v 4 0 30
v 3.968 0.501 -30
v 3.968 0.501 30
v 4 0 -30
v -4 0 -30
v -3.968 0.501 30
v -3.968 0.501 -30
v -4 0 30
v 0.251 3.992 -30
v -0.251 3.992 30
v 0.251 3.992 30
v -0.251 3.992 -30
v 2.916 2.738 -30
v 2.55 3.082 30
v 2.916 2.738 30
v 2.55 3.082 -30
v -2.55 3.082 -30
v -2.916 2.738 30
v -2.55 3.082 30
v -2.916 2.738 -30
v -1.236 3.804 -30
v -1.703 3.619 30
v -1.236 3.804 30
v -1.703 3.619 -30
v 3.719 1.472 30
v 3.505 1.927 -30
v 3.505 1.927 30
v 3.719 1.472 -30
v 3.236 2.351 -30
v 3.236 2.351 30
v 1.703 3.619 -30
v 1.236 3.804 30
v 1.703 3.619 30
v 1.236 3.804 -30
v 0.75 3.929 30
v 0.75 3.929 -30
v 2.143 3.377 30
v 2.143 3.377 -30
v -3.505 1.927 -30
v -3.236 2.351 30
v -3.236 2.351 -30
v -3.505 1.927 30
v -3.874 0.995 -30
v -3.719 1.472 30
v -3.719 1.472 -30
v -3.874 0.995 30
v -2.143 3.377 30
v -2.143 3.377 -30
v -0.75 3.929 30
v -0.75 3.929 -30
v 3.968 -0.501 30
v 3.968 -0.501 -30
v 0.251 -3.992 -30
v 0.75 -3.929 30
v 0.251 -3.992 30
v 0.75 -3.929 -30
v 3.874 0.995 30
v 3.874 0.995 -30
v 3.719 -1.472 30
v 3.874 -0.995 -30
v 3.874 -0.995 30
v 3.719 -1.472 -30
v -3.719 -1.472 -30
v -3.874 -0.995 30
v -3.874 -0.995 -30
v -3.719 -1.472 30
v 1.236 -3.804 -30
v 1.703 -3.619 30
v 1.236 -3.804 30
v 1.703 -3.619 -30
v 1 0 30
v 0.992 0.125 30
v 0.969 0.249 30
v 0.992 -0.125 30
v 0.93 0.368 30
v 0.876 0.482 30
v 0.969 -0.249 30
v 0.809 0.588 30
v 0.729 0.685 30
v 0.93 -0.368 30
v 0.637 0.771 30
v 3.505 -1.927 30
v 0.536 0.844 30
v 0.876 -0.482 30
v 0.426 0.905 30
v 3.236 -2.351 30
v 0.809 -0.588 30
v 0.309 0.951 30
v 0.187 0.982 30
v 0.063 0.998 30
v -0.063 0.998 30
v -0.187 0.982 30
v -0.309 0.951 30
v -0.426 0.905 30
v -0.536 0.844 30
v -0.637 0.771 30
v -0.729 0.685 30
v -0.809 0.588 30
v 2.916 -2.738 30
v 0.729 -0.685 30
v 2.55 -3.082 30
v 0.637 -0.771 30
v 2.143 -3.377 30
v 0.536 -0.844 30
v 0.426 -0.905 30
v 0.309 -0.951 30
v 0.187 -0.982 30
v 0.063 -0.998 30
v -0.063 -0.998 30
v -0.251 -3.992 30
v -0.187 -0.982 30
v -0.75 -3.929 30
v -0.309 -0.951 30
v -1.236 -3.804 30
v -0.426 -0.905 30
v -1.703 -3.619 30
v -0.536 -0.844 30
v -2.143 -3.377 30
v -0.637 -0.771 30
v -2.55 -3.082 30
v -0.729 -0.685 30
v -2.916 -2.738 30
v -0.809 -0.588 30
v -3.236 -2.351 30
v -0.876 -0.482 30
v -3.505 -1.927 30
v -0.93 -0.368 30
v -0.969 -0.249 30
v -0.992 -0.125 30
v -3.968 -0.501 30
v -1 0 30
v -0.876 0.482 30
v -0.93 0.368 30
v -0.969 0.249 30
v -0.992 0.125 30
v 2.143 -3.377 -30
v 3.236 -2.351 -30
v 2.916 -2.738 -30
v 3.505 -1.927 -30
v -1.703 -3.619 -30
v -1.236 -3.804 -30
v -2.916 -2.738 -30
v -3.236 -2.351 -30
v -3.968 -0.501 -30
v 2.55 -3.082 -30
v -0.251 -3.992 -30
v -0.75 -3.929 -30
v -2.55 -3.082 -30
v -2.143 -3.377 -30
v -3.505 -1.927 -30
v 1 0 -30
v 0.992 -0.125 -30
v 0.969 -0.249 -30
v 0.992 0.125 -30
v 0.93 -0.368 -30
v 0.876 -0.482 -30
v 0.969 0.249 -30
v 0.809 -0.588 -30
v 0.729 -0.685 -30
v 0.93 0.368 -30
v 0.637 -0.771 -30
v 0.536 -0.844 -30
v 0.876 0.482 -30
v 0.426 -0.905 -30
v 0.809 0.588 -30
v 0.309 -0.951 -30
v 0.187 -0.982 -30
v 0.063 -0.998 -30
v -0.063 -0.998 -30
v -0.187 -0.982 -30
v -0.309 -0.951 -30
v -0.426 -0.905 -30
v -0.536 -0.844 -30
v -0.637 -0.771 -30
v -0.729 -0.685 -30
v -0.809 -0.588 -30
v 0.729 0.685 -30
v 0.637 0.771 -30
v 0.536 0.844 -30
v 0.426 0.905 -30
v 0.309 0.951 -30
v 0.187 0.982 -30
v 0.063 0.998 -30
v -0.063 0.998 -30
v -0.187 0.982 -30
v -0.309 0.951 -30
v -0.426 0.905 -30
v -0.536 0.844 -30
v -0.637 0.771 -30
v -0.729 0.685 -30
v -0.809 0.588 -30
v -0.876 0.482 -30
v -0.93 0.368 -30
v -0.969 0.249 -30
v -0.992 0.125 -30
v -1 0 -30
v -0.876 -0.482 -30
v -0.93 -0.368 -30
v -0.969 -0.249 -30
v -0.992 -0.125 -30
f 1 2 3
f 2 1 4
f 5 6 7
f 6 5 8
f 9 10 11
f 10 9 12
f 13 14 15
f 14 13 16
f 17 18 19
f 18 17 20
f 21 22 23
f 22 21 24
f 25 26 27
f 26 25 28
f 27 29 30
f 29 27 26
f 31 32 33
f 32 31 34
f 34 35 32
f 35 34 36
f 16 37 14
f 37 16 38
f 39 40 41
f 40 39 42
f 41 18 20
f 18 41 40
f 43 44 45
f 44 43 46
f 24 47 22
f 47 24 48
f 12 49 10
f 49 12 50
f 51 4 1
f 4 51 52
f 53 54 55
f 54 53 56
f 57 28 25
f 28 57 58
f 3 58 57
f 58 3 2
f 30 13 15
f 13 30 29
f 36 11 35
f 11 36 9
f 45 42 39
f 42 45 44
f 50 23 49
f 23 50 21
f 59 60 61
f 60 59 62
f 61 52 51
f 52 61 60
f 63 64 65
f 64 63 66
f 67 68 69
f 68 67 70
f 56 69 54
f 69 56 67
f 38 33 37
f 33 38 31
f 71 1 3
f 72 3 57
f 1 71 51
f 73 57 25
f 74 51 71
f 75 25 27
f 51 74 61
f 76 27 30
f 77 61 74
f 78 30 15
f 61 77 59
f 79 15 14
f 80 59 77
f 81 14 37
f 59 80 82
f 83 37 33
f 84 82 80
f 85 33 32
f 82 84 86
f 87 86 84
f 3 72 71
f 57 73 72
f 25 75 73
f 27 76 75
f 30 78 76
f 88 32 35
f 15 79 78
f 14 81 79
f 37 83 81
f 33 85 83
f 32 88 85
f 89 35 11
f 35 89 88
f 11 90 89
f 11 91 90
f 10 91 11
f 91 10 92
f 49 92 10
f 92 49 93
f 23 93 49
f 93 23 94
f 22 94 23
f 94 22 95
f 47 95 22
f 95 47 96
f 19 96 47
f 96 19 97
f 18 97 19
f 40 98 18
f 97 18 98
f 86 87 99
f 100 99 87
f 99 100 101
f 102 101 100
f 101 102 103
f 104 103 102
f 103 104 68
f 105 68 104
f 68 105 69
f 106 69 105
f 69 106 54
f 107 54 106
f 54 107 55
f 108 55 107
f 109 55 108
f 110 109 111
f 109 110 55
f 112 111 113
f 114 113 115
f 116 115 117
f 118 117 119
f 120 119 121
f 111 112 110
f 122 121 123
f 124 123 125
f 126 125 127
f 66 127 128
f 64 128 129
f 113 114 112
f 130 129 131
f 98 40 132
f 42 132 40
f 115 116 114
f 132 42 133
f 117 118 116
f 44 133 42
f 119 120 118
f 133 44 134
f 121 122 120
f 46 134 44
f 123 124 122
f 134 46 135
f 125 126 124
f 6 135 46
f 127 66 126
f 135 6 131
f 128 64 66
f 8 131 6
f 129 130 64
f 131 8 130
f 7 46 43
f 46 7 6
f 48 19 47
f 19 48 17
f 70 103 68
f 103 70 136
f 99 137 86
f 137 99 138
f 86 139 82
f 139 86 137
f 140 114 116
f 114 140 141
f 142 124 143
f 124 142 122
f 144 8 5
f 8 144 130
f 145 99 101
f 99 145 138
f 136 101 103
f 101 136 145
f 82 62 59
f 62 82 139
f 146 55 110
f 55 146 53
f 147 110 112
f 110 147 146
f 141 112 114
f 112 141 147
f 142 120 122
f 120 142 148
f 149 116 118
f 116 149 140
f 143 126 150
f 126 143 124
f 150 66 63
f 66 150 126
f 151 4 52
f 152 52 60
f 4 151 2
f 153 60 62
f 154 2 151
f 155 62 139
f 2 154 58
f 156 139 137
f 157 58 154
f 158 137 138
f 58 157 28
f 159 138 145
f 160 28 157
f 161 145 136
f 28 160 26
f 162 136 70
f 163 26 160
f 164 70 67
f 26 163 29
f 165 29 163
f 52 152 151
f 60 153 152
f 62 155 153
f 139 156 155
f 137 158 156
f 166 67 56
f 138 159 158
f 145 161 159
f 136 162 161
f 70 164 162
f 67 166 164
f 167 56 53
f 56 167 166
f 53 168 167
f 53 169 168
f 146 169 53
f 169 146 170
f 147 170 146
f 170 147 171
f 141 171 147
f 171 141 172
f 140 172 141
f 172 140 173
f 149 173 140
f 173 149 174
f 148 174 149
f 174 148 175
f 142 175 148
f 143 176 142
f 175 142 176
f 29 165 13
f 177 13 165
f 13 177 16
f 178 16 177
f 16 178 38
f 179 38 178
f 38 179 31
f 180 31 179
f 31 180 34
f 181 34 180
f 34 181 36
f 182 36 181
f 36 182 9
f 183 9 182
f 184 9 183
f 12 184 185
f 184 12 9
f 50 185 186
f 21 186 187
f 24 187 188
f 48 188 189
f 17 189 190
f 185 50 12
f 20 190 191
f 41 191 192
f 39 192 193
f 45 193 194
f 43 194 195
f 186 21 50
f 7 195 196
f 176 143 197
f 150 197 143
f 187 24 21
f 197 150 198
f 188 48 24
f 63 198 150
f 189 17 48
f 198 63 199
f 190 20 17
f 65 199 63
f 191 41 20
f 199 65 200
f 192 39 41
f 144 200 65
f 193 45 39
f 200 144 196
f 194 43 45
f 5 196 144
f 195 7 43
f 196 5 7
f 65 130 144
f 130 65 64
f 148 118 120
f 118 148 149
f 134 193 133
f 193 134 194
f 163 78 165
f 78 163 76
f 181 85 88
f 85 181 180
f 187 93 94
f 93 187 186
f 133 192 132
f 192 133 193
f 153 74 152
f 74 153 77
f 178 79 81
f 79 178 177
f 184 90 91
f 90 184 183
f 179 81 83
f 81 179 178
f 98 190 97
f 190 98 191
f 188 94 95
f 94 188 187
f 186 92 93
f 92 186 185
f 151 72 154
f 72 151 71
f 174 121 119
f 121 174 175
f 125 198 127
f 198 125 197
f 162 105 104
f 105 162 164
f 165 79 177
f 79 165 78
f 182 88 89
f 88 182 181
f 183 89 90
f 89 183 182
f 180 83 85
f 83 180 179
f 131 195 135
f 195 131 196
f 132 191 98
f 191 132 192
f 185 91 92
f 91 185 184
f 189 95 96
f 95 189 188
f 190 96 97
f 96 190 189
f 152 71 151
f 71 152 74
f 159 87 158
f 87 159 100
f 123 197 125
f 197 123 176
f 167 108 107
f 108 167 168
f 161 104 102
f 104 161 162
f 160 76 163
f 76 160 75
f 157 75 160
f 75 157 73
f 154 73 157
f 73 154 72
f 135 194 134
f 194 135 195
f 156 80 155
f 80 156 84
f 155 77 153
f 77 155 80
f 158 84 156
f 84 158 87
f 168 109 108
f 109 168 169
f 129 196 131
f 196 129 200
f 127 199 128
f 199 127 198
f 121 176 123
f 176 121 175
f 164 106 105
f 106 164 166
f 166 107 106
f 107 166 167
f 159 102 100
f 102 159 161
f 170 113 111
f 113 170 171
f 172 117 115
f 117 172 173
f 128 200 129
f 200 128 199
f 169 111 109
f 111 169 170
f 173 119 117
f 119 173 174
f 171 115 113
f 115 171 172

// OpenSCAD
$fn = 50;


difference() {
	union() {
		translate(v = [0, 0, -30.0000000000]) {
			cylinder(h = 60, r = 4.0000000000);
		}
	}
	union() {
		translate(v = [0, 0, -100.0000000000]) {
			cylinder(h = 200, r = 1.0000000000);
		}
	}
}
